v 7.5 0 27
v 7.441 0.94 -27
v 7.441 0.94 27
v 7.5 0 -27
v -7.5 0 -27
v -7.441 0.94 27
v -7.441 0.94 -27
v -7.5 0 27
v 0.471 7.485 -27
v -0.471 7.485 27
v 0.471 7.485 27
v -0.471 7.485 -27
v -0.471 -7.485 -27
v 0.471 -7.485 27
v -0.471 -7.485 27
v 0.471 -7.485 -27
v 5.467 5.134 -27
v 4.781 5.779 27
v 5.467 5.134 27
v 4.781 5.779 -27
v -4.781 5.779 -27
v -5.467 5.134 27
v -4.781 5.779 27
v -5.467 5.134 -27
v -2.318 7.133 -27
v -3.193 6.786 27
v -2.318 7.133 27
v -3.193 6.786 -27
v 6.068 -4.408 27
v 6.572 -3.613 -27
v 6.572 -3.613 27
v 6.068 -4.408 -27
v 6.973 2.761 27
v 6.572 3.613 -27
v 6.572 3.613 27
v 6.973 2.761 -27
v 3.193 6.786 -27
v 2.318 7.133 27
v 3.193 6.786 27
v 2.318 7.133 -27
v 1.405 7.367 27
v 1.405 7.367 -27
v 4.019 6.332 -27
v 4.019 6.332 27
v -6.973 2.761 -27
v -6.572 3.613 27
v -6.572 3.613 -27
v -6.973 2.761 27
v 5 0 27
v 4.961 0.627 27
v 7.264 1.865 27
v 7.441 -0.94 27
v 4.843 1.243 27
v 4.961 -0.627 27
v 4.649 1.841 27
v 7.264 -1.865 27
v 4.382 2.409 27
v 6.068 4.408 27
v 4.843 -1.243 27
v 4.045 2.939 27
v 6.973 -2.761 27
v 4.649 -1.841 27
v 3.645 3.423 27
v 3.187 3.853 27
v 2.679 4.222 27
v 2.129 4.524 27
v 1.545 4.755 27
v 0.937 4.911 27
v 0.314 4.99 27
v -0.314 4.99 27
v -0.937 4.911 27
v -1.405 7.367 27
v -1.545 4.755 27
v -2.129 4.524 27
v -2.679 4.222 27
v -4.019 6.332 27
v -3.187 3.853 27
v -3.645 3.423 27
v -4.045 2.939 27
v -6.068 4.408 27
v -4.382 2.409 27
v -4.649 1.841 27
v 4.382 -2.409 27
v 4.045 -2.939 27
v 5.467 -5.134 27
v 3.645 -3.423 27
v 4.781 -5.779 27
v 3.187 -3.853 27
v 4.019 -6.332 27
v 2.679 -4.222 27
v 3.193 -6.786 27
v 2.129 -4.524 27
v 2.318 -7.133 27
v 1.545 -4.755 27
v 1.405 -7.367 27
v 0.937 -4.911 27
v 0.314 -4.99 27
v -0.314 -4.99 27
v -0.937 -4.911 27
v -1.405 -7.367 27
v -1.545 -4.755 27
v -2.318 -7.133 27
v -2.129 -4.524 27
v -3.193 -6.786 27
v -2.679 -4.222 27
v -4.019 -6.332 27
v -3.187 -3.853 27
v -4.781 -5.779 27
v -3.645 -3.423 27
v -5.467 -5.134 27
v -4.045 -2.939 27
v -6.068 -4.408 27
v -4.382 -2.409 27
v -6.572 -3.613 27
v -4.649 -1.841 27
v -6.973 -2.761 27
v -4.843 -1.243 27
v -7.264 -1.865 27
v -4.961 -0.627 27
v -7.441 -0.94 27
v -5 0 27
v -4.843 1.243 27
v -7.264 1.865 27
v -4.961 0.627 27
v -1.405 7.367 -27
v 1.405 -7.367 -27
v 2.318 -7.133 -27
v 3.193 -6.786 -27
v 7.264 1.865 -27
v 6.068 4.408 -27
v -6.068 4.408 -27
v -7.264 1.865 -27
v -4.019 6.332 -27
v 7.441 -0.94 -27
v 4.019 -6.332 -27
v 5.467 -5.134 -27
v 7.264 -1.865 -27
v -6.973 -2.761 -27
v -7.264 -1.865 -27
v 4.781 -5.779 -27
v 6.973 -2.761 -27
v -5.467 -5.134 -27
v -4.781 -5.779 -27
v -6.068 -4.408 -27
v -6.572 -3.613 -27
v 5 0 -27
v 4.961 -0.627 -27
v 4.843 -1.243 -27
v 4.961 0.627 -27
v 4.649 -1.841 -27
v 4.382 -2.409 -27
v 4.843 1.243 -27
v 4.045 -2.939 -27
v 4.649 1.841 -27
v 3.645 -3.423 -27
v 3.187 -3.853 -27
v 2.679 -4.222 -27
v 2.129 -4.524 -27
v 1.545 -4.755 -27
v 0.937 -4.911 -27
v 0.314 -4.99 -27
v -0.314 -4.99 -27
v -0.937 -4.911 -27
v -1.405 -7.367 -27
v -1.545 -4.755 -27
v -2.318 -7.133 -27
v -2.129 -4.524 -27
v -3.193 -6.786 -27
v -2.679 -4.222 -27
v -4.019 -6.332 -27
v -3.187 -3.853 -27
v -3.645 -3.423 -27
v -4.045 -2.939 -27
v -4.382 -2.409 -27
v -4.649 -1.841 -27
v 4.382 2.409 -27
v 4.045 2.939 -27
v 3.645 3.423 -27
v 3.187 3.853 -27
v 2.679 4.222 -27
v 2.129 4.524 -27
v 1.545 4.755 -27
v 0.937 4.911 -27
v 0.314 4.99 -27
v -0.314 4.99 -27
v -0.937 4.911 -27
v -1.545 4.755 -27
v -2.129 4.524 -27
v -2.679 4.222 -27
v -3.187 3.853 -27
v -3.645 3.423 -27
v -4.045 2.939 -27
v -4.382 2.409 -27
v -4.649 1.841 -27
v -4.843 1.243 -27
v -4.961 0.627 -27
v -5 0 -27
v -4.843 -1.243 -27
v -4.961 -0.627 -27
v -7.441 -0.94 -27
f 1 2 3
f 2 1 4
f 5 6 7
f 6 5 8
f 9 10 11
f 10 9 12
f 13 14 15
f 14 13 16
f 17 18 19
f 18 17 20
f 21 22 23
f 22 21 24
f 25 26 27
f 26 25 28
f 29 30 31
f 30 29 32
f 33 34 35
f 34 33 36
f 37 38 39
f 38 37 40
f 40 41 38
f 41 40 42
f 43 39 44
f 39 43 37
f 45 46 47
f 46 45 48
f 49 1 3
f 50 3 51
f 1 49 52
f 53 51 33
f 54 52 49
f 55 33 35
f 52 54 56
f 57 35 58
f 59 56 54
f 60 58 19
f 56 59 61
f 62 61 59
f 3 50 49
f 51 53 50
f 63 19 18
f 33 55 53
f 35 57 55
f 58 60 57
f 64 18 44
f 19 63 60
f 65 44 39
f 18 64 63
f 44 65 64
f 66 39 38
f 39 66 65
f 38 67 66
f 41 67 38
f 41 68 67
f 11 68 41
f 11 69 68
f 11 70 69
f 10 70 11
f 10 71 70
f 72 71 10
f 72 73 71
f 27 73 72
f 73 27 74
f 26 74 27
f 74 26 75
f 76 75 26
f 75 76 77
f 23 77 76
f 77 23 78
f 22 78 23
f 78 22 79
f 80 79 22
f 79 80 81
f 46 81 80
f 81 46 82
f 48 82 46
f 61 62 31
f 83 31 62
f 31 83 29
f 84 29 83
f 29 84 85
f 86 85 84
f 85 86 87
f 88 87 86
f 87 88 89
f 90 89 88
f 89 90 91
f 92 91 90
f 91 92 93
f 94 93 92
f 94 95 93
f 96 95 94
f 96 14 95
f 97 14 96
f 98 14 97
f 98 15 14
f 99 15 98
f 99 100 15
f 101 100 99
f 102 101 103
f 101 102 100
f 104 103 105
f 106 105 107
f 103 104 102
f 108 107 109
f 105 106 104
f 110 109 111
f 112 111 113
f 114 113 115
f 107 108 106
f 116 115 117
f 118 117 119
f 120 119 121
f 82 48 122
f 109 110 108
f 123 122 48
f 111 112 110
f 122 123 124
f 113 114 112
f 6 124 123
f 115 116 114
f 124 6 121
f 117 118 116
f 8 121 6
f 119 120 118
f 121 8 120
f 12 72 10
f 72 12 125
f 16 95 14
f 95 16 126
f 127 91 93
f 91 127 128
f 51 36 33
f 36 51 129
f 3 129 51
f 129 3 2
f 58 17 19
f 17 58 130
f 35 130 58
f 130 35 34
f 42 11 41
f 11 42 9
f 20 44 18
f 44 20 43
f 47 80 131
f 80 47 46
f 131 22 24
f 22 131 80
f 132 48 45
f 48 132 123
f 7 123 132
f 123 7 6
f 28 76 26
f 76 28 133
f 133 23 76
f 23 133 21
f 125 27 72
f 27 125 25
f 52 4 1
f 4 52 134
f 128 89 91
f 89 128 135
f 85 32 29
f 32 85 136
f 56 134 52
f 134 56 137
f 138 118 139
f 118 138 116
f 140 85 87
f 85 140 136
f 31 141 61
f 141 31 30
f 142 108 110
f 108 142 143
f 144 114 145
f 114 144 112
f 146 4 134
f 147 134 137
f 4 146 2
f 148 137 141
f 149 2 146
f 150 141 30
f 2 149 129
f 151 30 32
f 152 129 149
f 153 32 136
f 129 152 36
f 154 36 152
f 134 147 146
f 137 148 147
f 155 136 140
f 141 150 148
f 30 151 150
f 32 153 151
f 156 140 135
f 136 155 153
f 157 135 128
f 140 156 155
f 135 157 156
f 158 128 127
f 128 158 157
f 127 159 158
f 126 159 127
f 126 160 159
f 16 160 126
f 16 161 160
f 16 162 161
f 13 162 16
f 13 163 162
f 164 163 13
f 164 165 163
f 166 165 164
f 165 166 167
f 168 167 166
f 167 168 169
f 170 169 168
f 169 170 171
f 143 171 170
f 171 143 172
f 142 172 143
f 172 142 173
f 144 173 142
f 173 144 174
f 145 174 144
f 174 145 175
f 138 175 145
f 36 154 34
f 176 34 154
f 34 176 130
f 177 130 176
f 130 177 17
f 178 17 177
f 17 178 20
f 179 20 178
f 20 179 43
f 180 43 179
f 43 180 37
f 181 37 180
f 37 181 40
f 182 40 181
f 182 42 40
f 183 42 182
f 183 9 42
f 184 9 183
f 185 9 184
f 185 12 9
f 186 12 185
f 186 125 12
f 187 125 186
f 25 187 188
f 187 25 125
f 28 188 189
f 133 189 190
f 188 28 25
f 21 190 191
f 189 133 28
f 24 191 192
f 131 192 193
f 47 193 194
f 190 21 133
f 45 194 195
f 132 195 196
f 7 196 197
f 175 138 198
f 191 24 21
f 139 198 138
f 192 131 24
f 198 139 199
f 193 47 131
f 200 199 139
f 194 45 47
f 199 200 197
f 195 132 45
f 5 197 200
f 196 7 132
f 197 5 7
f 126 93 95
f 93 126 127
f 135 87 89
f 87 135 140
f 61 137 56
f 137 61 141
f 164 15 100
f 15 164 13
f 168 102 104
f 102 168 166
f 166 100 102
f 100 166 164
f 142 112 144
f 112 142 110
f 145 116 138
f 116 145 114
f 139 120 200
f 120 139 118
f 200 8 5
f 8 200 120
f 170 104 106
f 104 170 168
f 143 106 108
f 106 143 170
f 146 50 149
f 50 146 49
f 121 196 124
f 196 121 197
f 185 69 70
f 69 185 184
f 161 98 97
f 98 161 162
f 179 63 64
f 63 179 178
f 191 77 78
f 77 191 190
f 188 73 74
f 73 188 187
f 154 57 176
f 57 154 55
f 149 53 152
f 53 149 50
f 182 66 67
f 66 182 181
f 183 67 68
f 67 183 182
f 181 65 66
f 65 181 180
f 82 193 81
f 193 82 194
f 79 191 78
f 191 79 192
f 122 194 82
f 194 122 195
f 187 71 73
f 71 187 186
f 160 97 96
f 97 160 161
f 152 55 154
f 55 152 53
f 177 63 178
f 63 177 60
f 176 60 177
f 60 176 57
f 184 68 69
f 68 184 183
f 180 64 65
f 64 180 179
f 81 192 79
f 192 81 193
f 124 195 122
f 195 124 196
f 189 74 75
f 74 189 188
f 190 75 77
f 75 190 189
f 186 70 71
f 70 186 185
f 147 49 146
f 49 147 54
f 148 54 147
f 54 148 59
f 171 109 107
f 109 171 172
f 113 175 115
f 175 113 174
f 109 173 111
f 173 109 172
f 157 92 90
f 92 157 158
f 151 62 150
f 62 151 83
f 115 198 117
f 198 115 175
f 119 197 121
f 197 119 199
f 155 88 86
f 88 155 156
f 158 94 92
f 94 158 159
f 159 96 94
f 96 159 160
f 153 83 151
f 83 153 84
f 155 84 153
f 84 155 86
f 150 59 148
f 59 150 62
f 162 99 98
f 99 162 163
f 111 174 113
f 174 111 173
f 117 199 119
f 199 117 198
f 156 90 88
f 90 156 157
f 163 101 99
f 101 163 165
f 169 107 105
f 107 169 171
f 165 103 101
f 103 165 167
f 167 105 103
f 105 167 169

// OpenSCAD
$fn = 50;


difference() {
	union() {
		translate(v = [0, 0, -27.0000000000]) {
			cylinder(h = 54, r = 7.5000000000);
		}
	}
	union() {
		translate(v = [0, 0, -100.0000000000]) {
			cylinder(h = 200, r = 5.0000000000);
		}
	}
}
